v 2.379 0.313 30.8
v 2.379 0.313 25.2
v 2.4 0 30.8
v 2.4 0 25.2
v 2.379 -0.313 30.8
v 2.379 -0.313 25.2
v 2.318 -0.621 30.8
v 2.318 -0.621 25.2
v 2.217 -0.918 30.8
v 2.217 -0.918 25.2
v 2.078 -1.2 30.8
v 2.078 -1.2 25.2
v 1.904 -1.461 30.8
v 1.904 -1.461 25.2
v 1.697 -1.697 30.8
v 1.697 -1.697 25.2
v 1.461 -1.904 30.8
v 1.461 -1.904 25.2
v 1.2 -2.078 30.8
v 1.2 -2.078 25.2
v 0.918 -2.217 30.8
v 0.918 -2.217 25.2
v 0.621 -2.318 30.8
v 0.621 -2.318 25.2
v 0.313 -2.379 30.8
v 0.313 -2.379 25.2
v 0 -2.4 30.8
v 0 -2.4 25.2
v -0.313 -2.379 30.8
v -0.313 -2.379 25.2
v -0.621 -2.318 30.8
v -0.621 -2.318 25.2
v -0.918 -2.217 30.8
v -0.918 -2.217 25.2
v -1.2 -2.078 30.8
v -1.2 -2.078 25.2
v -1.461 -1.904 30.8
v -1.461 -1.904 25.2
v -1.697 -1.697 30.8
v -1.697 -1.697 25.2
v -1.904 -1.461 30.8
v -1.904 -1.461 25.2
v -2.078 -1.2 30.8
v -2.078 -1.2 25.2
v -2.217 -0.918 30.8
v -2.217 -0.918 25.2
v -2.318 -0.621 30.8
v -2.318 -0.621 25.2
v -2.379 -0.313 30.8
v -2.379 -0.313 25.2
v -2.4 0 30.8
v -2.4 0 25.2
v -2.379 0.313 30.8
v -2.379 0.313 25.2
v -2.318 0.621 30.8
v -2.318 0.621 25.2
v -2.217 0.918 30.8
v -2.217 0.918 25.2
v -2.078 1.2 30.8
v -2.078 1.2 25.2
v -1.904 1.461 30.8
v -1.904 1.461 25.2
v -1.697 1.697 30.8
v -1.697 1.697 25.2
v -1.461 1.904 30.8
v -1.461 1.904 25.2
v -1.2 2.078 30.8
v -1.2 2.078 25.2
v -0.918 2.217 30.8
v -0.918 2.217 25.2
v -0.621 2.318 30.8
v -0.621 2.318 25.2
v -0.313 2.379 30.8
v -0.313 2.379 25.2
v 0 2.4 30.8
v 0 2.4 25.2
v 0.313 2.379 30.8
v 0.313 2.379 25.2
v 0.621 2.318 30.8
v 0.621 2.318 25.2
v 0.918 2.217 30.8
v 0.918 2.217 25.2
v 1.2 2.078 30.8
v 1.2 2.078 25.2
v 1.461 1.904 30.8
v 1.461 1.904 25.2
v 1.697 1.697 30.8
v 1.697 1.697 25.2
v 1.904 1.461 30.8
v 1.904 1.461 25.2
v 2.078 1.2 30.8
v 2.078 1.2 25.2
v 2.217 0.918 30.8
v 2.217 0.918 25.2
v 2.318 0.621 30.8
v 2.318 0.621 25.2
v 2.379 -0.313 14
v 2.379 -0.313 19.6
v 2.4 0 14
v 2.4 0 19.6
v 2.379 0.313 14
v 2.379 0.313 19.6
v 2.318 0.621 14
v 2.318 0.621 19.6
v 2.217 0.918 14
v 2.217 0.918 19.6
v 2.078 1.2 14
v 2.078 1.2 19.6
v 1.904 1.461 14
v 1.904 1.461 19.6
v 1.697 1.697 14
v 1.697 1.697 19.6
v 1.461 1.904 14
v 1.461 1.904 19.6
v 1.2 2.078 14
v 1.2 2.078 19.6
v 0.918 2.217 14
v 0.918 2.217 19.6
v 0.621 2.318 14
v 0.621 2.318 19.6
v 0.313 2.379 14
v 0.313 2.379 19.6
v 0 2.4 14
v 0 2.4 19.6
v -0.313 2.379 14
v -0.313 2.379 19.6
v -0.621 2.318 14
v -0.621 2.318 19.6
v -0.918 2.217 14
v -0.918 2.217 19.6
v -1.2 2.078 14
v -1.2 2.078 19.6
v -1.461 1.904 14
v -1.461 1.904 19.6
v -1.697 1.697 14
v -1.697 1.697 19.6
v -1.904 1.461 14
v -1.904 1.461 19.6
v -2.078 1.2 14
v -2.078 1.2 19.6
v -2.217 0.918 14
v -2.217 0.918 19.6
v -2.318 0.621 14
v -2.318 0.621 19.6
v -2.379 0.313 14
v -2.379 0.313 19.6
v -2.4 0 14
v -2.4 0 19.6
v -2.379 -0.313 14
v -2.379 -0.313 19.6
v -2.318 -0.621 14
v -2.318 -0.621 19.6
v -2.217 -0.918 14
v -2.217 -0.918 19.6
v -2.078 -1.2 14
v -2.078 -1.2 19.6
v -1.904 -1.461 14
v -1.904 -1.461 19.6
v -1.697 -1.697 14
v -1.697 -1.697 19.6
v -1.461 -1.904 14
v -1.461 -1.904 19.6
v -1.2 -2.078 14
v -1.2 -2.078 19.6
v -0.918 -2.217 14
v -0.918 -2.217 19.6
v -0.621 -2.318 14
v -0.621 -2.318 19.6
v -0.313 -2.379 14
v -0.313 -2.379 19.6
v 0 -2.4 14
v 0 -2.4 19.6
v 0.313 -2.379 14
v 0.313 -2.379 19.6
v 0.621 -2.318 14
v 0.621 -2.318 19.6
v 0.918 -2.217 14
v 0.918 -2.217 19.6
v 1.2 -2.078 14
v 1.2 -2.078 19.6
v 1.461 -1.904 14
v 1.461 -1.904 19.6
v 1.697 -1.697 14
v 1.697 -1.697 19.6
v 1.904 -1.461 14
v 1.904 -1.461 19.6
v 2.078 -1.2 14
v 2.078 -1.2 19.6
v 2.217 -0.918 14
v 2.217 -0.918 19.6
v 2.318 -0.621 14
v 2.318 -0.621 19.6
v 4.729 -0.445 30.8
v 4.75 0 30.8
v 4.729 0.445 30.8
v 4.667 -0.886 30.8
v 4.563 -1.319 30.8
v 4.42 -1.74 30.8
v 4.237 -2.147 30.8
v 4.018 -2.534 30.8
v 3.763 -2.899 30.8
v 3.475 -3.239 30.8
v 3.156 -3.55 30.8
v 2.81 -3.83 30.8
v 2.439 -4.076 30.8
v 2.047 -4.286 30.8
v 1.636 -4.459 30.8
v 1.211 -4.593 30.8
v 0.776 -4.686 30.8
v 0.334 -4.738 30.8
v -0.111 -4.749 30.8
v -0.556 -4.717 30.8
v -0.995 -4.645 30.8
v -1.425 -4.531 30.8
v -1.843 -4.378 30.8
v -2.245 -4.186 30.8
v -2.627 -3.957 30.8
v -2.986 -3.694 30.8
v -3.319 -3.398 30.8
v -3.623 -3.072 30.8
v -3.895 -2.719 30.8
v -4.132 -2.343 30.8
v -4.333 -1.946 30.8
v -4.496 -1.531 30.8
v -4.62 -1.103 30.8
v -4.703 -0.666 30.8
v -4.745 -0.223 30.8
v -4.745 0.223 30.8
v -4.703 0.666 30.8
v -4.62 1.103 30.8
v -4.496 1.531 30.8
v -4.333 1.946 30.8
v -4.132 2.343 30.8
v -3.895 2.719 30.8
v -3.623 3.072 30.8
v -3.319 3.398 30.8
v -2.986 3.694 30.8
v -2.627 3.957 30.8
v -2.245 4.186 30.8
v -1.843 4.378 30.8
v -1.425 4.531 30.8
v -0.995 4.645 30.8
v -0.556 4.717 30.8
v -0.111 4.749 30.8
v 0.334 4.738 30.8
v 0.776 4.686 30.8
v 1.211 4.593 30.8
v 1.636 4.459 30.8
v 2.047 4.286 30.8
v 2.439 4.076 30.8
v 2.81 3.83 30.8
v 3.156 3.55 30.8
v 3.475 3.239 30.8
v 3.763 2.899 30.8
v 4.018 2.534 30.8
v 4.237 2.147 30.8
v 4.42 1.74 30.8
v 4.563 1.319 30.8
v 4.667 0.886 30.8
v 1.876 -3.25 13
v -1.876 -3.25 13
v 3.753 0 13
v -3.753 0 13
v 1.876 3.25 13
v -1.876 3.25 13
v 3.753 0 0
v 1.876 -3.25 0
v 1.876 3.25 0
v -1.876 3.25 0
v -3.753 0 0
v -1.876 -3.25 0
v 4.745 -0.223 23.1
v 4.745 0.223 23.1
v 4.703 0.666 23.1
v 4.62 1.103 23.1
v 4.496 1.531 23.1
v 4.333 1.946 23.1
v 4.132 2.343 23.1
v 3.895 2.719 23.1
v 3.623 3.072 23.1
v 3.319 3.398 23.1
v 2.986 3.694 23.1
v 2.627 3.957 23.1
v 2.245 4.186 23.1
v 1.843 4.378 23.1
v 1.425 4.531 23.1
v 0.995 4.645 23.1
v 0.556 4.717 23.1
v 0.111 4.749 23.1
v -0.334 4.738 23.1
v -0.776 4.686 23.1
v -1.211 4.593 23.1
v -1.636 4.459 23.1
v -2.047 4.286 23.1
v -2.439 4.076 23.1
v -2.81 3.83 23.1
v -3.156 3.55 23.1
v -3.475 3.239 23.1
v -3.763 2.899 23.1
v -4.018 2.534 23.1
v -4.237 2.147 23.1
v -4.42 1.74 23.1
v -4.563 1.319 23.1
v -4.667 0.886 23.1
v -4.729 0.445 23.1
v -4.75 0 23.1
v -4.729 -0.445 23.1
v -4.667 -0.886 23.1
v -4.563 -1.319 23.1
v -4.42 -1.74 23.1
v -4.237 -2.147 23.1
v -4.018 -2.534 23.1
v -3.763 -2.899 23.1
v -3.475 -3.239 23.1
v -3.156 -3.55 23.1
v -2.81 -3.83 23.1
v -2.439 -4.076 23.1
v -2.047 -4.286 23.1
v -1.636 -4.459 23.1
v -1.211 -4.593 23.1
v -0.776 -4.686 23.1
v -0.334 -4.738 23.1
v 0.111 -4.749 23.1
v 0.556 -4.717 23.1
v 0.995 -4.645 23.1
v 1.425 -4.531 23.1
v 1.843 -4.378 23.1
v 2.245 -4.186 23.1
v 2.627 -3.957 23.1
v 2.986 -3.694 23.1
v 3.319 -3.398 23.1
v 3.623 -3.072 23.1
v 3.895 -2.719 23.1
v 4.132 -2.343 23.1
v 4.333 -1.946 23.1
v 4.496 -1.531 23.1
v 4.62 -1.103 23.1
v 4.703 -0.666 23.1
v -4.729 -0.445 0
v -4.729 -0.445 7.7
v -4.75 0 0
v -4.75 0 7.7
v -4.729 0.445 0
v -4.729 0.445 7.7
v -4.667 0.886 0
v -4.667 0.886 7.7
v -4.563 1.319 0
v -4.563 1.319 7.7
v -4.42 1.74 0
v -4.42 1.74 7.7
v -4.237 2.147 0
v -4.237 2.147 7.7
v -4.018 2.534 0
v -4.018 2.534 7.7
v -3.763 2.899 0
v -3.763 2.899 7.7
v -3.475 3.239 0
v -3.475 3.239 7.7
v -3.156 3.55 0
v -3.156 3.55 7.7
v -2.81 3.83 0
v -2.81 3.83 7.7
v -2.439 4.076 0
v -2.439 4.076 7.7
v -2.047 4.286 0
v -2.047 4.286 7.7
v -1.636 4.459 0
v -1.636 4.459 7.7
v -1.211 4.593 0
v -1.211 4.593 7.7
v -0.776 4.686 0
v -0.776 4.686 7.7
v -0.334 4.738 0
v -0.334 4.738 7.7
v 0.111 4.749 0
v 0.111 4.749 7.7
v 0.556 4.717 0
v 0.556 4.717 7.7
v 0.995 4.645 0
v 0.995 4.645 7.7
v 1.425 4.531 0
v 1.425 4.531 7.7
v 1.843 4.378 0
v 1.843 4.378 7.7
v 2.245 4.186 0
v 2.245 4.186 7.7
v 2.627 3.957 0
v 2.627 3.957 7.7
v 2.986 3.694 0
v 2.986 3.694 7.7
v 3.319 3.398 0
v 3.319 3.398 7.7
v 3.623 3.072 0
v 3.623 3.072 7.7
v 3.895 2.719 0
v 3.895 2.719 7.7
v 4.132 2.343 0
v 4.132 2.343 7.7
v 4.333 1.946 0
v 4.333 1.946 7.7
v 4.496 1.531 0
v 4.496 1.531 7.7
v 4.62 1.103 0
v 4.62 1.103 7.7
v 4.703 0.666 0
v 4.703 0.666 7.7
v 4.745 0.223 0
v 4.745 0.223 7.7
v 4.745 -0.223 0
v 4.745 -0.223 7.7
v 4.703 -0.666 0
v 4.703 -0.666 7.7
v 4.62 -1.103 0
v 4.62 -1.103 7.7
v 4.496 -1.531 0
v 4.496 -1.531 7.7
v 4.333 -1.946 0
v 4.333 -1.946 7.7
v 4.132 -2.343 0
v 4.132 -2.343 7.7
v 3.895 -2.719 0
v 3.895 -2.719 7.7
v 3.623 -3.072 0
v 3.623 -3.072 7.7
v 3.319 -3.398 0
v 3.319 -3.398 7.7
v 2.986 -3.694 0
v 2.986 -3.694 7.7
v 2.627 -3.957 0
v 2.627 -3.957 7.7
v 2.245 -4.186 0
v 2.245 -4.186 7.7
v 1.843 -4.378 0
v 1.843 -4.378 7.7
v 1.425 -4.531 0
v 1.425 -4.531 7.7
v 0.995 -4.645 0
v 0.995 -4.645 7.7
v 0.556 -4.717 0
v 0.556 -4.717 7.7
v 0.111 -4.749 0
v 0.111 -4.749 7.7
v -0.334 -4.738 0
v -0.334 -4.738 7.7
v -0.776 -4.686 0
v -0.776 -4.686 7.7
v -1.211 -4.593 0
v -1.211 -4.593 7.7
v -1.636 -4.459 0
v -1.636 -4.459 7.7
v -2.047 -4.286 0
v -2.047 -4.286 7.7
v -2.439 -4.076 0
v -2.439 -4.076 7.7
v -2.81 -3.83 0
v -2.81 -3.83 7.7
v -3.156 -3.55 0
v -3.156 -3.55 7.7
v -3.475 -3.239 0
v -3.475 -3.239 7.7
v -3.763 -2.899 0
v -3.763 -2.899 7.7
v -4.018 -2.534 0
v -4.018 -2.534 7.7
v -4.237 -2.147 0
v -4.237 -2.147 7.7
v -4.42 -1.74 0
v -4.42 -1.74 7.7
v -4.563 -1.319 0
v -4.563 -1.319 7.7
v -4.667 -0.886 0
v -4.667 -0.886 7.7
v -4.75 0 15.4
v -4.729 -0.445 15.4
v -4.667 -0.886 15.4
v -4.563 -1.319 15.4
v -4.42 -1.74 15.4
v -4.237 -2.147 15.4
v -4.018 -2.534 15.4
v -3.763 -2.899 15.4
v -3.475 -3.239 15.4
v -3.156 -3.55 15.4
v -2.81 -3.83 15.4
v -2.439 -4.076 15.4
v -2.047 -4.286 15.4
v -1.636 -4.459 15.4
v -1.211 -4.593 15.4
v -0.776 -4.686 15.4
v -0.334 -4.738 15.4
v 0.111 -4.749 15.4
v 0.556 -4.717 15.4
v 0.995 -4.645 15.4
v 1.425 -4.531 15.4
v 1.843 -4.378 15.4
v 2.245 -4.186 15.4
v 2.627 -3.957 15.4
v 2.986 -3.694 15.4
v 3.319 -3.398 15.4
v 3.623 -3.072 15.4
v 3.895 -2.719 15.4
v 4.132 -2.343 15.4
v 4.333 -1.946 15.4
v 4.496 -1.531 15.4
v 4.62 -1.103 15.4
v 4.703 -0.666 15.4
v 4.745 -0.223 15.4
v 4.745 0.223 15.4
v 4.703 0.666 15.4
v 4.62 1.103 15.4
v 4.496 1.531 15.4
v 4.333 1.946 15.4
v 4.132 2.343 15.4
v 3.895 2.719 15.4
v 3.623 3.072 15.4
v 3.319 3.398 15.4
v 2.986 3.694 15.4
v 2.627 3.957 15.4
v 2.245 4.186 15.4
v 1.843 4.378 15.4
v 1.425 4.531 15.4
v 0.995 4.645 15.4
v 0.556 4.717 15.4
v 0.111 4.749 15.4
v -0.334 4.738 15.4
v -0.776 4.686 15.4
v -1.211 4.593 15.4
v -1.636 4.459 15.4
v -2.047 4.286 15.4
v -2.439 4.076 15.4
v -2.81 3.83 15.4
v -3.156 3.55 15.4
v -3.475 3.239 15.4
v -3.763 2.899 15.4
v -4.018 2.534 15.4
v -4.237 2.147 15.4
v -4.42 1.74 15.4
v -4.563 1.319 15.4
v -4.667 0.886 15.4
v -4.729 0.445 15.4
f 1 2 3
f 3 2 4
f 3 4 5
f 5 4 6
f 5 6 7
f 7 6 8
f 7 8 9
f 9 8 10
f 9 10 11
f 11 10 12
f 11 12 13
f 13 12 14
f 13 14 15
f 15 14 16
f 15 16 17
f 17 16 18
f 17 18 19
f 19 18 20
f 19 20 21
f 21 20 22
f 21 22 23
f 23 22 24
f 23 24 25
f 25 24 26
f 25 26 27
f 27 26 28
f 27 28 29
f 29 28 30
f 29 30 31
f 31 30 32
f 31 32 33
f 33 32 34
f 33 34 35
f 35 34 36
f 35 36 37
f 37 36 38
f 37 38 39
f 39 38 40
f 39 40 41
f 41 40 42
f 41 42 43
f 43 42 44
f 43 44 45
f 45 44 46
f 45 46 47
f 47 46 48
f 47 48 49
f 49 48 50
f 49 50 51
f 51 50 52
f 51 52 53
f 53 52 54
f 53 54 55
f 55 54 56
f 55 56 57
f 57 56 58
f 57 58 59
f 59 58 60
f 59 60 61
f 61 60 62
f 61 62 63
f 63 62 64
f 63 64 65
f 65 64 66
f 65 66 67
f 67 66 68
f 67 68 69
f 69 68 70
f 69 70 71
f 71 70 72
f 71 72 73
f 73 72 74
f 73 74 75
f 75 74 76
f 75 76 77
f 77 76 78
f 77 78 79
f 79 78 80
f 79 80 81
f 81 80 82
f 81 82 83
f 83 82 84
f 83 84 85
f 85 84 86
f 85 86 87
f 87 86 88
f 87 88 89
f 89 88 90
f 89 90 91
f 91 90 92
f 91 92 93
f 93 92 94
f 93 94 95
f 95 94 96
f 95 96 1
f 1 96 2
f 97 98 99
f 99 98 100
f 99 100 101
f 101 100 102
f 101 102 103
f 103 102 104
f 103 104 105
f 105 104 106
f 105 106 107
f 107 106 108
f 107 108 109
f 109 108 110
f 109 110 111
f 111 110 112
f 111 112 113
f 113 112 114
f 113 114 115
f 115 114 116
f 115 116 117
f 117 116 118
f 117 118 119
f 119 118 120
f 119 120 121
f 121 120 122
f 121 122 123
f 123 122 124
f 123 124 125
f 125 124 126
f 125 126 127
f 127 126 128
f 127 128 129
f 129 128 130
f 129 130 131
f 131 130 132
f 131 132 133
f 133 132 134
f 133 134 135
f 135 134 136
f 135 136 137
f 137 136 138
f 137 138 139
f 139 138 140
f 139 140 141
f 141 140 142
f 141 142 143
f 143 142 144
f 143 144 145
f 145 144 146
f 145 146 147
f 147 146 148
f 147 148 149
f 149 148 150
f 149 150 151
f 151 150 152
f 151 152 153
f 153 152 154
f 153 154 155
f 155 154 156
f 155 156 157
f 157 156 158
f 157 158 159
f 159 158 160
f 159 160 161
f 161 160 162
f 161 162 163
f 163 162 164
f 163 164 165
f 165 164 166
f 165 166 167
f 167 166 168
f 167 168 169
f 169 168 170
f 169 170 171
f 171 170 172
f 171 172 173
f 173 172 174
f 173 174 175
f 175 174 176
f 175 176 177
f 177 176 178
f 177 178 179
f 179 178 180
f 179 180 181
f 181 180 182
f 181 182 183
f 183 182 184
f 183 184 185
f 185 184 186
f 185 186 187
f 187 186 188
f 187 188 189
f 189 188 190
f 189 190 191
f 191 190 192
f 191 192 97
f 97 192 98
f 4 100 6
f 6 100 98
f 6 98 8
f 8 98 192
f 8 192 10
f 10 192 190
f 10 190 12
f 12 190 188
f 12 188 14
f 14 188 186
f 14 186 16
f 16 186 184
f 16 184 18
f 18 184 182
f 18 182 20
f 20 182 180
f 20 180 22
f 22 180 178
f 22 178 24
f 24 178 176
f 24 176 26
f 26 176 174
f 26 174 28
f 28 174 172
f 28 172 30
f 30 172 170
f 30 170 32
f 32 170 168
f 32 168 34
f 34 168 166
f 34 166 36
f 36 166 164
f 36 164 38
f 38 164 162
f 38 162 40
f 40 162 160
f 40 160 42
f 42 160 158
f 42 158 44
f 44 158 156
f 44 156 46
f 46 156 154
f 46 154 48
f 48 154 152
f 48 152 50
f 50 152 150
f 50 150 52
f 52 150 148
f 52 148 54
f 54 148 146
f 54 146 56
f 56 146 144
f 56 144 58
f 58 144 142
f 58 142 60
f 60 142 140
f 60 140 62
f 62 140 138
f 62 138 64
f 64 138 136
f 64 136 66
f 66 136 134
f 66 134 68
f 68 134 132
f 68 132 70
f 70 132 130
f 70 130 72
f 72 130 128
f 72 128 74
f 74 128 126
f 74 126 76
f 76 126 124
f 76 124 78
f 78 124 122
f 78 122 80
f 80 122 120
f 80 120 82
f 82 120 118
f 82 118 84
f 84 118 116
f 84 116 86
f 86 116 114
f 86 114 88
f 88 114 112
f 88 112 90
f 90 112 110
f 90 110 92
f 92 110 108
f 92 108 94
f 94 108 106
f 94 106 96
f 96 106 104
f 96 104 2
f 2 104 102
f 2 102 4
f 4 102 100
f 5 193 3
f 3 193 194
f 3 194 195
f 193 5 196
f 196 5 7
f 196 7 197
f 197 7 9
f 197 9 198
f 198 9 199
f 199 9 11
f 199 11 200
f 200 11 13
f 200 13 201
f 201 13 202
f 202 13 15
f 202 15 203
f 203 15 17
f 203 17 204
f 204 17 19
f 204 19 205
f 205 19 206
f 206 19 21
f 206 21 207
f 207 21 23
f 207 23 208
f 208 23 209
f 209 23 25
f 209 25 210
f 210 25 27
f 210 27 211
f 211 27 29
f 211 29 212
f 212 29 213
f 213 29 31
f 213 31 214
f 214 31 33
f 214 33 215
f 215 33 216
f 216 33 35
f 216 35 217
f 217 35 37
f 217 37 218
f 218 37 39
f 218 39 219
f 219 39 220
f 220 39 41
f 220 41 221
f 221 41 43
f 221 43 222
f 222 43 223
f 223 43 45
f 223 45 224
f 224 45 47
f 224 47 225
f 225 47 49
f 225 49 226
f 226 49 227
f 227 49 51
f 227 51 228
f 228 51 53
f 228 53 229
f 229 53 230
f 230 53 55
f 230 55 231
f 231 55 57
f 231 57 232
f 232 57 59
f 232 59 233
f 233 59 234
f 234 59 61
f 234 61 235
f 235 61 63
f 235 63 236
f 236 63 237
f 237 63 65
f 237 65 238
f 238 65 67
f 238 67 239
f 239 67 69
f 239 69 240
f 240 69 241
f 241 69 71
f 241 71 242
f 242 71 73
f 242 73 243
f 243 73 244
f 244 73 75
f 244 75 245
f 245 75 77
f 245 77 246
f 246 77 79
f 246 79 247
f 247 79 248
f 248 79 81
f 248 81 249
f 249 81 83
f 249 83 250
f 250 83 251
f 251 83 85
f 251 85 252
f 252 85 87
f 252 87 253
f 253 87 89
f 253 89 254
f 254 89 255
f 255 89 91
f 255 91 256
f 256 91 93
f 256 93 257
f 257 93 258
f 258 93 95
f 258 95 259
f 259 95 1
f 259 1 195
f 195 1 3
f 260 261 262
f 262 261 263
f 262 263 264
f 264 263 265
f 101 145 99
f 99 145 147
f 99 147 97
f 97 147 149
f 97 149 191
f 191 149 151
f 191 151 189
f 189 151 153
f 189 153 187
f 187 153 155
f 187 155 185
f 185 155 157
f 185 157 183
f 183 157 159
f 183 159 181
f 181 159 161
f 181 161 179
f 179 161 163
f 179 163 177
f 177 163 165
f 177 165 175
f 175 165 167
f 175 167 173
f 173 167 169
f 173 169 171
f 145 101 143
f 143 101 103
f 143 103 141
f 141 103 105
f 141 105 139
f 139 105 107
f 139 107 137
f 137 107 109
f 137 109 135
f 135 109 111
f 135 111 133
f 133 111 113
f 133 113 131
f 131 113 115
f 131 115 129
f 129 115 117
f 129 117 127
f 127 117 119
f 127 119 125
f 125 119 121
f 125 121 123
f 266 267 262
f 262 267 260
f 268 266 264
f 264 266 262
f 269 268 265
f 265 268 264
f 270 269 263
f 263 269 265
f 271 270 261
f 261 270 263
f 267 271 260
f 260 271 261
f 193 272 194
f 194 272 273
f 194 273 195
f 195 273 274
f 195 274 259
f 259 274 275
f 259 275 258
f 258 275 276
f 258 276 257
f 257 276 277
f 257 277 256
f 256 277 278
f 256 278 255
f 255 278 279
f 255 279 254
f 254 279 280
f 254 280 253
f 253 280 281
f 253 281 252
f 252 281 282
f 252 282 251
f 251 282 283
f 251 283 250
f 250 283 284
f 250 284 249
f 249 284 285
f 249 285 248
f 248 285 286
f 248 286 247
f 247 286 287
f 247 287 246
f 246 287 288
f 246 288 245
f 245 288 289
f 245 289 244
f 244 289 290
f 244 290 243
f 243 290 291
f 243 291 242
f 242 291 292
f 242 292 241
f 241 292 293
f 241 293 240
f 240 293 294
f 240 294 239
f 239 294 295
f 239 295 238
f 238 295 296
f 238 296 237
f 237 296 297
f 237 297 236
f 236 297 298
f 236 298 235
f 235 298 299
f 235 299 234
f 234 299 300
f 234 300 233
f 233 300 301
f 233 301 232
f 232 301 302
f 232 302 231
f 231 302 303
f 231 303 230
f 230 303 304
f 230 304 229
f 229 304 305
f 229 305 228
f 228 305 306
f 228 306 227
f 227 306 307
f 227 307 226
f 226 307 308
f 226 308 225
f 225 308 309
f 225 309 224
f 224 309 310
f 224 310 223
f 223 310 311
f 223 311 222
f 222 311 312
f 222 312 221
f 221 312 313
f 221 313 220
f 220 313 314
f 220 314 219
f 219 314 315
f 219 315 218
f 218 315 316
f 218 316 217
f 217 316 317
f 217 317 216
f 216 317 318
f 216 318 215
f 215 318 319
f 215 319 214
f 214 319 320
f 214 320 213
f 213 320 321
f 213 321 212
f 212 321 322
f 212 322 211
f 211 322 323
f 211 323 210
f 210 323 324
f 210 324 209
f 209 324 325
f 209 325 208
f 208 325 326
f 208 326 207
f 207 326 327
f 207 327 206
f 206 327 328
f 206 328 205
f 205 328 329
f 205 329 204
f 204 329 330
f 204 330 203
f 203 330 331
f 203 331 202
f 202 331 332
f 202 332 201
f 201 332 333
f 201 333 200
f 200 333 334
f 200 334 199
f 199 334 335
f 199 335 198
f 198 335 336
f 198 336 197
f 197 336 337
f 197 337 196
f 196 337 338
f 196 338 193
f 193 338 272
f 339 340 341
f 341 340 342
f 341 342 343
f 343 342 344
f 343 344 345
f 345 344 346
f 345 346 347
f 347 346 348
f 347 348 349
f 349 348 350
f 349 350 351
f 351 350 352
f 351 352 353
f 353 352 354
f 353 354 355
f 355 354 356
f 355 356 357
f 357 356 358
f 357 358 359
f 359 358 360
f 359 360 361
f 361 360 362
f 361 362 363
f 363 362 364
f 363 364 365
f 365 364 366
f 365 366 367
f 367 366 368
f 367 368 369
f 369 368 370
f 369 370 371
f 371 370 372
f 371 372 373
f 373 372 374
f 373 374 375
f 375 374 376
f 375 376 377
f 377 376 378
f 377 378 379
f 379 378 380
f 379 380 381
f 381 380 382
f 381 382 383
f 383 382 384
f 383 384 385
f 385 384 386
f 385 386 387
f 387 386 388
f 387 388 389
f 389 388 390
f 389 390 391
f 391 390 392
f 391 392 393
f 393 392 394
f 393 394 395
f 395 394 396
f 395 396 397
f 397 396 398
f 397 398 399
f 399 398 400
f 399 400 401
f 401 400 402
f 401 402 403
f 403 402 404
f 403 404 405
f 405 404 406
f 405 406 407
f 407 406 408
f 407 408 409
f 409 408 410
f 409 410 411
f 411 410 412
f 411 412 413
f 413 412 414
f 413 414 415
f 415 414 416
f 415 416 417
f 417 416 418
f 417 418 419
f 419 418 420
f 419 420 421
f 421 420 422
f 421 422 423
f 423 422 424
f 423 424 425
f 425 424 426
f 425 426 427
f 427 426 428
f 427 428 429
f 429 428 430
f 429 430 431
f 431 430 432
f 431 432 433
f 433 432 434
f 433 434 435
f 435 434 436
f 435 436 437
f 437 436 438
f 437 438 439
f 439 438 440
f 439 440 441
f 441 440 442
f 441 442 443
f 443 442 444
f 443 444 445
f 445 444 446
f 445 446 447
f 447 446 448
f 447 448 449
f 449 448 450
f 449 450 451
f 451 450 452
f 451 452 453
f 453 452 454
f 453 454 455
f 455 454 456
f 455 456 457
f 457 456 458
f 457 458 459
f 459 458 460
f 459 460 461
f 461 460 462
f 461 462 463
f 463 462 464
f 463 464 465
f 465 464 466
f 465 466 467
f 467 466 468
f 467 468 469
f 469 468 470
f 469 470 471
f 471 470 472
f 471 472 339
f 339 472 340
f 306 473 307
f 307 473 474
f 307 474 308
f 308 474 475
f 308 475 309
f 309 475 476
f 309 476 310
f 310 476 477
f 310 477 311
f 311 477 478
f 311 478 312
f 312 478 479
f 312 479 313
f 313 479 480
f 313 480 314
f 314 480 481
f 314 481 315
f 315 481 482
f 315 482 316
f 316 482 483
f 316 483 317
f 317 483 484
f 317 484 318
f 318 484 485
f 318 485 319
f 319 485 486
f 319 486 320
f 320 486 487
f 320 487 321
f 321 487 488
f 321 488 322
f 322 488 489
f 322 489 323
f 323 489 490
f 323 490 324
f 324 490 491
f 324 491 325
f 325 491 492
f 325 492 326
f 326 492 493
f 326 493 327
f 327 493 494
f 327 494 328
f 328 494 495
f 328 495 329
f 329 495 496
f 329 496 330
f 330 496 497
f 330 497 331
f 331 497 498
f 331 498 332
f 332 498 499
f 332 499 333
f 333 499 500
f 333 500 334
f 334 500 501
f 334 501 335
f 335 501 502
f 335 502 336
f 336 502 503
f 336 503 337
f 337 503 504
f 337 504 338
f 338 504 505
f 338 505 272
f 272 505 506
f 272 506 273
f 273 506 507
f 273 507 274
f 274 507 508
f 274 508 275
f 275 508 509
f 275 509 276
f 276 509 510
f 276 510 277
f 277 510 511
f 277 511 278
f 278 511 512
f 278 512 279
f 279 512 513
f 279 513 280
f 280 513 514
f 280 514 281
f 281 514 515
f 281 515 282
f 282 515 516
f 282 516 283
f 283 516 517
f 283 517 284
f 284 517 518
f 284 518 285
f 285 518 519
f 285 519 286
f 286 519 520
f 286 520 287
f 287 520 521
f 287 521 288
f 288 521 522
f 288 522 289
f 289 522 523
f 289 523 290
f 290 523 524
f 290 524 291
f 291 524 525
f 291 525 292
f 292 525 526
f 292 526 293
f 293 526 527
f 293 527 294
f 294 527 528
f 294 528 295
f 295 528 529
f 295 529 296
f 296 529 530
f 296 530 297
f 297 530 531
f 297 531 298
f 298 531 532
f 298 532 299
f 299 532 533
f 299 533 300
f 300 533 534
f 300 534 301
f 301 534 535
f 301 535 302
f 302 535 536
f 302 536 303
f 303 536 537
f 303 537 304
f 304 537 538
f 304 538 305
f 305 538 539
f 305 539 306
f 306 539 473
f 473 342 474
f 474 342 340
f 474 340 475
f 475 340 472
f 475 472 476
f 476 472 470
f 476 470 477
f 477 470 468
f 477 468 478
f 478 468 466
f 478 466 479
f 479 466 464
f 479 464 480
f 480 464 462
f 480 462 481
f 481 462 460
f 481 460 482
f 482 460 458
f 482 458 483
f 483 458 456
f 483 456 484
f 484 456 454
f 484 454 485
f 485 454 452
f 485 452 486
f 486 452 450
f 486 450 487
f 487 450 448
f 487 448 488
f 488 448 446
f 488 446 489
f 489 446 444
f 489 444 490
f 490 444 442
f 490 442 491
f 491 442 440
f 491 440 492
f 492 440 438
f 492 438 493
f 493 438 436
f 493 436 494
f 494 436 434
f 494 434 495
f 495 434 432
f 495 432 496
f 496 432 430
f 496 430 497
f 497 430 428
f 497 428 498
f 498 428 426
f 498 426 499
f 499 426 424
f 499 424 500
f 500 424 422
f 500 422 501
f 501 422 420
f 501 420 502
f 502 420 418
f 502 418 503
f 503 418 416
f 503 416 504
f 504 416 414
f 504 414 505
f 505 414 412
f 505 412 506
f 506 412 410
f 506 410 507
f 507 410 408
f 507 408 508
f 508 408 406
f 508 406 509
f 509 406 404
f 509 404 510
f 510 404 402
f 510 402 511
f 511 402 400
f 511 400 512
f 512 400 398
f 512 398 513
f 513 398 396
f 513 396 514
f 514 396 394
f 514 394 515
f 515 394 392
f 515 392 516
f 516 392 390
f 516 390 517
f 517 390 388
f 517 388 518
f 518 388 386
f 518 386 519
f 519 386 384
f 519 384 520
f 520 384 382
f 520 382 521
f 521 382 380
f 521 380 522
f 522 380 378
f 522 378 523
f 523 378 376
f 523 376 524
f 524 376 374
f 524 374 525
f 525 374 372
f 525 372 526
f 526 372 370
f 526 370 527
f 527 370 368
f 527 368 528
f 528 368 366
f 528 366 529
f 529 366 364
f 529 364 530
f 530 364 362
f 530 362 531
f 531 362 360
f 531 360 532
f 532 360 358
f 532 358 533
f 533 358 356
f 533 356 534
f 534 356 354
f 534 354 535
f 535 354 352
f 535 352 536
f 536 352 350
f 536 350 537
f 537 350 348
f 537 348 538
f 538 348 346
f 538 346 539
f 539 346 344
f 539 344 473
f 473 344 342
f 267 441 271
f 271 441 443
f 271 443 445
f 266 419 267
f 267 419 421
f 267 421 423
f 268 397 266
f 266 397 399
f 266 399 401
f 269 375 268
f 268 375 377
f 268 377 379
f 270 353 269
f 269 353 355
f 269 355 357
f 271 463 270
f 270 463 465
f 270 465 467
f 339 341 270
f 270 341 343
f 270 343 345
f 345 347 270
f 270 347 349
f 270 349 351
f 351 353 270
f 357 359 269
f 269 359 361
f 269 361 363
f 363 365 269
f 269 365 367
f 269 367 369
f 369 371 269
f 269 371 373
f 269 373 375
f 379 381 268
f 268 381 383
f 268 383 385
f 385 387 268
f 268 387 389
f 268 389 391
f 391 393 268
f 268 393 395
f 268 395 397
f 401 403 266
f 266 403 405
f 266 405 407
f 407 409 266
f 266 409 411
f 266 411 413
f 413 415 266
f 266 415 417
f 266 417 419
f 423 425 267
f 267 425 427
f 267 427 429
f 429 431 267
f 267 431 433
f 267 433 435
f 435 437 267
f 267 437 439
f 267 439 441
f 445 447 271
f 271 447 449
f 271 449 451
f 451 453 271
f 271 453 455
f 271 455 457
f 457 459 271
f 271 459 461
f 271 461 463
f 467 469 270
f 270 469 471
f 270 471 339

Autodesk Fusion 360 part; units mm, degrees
sketch "Sketch1" plane through (0, 0, 0) normal (0, 0, 1) x (1, 0, 0)
  line L0 (1.8764, -3.25) -> (3.7528, 0)
  line L1 (3.7528, 0) -> (1.8764, 3.25)
  line L2 (1.8764, 3.25) -> (-1.8764, 3.25)
  line L3 (-1.8764, 3.25) -> (-3.7528, 0)
  line L4 (-3.7528, 0) -> (-1.8764, -3.25)
  line L5 (-1.8764, -3.25) -> (1.8764, -3.25)
  circle A0 centre (0, 0) radius 4.75
  dimension "d1" = 3.25
  dimension "d2" = 9.5
extrude "Extrude1" add sketch "Sketch1" along normal blind 13
sketch "Sketch2" plane through (0, 0, 13) normal (0, 0, 1) x (-1, 0, 0)
  line L0 (-1.8764, 3.25) -> (1.8764, 3.25)
  line L1 (1.8764, 3.25) -> (3.7528, 0)
  line L2 (3.7528, 0) -> (1.8764, -3.25)
  line L3 (1.8764, -3.25) -> (-1.8764, -3.25)
  line L4 (-1.8764, -3.25) -> (-3.7528, 0)
  line L5 (-3.7528, 0) -> (-1.8764, 3.25)
  circle A0 centre (0, 0) radius 4.75
extrude "Extrude2" add sketch "Sketch2" along normal blind 1 contours L0 L1 L2 L3 L4 L5 | A0
sketch "Sketch3" plane through (0, 0, 14) normal (0, 0, 1) x (-1, 0, 0)
  circle A0 centre (0, 0) radius 4.75
  circle A1 centre (0, 0) radius 2.4
  dimension "d7" = 4.8
extrude "Extrude3" add sketch "Sketch3" along normal blind 16.8
